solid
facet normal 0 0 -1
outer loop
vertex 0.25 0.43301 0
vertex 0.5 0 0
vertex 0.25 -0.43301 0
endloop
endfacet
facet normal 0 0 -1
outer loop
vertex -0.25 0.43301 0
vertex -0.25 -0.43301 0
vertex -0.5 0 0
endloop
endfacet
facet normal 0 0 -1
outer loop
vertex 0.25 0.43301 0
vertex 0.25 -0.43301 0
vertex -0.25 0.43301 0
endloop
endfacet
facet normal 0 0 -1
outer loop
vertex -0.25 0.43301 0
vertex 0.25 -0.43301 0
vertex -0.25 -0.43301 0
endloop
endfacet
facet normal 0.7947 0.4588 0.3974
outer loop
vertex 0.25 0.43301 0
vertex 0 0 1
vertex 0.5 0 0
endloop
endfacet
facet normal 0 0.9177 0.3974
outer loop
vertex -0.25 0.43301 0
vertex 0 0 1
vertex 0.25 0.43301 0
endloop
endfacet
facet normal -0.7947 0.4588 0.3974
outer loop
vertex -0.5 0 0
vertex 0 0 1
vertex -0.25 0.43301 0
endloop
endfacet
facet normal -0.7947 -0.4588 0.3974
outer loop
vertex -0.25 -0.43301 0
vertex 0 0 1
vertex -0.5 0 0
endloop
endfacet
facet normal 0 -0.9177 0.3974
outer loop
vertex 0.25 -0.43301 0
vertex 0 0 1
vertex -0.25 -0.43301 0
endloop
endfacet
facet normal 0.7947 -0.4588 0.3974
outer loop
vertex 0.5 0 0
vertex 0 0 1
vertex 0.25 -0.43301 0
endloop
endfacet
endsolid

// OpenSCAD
// Hexagon Pyramid for Basic Shapes
// by Slashee the Cow

linear_extrude(1, scale = 0)
circle(d=1, $fn=6);
